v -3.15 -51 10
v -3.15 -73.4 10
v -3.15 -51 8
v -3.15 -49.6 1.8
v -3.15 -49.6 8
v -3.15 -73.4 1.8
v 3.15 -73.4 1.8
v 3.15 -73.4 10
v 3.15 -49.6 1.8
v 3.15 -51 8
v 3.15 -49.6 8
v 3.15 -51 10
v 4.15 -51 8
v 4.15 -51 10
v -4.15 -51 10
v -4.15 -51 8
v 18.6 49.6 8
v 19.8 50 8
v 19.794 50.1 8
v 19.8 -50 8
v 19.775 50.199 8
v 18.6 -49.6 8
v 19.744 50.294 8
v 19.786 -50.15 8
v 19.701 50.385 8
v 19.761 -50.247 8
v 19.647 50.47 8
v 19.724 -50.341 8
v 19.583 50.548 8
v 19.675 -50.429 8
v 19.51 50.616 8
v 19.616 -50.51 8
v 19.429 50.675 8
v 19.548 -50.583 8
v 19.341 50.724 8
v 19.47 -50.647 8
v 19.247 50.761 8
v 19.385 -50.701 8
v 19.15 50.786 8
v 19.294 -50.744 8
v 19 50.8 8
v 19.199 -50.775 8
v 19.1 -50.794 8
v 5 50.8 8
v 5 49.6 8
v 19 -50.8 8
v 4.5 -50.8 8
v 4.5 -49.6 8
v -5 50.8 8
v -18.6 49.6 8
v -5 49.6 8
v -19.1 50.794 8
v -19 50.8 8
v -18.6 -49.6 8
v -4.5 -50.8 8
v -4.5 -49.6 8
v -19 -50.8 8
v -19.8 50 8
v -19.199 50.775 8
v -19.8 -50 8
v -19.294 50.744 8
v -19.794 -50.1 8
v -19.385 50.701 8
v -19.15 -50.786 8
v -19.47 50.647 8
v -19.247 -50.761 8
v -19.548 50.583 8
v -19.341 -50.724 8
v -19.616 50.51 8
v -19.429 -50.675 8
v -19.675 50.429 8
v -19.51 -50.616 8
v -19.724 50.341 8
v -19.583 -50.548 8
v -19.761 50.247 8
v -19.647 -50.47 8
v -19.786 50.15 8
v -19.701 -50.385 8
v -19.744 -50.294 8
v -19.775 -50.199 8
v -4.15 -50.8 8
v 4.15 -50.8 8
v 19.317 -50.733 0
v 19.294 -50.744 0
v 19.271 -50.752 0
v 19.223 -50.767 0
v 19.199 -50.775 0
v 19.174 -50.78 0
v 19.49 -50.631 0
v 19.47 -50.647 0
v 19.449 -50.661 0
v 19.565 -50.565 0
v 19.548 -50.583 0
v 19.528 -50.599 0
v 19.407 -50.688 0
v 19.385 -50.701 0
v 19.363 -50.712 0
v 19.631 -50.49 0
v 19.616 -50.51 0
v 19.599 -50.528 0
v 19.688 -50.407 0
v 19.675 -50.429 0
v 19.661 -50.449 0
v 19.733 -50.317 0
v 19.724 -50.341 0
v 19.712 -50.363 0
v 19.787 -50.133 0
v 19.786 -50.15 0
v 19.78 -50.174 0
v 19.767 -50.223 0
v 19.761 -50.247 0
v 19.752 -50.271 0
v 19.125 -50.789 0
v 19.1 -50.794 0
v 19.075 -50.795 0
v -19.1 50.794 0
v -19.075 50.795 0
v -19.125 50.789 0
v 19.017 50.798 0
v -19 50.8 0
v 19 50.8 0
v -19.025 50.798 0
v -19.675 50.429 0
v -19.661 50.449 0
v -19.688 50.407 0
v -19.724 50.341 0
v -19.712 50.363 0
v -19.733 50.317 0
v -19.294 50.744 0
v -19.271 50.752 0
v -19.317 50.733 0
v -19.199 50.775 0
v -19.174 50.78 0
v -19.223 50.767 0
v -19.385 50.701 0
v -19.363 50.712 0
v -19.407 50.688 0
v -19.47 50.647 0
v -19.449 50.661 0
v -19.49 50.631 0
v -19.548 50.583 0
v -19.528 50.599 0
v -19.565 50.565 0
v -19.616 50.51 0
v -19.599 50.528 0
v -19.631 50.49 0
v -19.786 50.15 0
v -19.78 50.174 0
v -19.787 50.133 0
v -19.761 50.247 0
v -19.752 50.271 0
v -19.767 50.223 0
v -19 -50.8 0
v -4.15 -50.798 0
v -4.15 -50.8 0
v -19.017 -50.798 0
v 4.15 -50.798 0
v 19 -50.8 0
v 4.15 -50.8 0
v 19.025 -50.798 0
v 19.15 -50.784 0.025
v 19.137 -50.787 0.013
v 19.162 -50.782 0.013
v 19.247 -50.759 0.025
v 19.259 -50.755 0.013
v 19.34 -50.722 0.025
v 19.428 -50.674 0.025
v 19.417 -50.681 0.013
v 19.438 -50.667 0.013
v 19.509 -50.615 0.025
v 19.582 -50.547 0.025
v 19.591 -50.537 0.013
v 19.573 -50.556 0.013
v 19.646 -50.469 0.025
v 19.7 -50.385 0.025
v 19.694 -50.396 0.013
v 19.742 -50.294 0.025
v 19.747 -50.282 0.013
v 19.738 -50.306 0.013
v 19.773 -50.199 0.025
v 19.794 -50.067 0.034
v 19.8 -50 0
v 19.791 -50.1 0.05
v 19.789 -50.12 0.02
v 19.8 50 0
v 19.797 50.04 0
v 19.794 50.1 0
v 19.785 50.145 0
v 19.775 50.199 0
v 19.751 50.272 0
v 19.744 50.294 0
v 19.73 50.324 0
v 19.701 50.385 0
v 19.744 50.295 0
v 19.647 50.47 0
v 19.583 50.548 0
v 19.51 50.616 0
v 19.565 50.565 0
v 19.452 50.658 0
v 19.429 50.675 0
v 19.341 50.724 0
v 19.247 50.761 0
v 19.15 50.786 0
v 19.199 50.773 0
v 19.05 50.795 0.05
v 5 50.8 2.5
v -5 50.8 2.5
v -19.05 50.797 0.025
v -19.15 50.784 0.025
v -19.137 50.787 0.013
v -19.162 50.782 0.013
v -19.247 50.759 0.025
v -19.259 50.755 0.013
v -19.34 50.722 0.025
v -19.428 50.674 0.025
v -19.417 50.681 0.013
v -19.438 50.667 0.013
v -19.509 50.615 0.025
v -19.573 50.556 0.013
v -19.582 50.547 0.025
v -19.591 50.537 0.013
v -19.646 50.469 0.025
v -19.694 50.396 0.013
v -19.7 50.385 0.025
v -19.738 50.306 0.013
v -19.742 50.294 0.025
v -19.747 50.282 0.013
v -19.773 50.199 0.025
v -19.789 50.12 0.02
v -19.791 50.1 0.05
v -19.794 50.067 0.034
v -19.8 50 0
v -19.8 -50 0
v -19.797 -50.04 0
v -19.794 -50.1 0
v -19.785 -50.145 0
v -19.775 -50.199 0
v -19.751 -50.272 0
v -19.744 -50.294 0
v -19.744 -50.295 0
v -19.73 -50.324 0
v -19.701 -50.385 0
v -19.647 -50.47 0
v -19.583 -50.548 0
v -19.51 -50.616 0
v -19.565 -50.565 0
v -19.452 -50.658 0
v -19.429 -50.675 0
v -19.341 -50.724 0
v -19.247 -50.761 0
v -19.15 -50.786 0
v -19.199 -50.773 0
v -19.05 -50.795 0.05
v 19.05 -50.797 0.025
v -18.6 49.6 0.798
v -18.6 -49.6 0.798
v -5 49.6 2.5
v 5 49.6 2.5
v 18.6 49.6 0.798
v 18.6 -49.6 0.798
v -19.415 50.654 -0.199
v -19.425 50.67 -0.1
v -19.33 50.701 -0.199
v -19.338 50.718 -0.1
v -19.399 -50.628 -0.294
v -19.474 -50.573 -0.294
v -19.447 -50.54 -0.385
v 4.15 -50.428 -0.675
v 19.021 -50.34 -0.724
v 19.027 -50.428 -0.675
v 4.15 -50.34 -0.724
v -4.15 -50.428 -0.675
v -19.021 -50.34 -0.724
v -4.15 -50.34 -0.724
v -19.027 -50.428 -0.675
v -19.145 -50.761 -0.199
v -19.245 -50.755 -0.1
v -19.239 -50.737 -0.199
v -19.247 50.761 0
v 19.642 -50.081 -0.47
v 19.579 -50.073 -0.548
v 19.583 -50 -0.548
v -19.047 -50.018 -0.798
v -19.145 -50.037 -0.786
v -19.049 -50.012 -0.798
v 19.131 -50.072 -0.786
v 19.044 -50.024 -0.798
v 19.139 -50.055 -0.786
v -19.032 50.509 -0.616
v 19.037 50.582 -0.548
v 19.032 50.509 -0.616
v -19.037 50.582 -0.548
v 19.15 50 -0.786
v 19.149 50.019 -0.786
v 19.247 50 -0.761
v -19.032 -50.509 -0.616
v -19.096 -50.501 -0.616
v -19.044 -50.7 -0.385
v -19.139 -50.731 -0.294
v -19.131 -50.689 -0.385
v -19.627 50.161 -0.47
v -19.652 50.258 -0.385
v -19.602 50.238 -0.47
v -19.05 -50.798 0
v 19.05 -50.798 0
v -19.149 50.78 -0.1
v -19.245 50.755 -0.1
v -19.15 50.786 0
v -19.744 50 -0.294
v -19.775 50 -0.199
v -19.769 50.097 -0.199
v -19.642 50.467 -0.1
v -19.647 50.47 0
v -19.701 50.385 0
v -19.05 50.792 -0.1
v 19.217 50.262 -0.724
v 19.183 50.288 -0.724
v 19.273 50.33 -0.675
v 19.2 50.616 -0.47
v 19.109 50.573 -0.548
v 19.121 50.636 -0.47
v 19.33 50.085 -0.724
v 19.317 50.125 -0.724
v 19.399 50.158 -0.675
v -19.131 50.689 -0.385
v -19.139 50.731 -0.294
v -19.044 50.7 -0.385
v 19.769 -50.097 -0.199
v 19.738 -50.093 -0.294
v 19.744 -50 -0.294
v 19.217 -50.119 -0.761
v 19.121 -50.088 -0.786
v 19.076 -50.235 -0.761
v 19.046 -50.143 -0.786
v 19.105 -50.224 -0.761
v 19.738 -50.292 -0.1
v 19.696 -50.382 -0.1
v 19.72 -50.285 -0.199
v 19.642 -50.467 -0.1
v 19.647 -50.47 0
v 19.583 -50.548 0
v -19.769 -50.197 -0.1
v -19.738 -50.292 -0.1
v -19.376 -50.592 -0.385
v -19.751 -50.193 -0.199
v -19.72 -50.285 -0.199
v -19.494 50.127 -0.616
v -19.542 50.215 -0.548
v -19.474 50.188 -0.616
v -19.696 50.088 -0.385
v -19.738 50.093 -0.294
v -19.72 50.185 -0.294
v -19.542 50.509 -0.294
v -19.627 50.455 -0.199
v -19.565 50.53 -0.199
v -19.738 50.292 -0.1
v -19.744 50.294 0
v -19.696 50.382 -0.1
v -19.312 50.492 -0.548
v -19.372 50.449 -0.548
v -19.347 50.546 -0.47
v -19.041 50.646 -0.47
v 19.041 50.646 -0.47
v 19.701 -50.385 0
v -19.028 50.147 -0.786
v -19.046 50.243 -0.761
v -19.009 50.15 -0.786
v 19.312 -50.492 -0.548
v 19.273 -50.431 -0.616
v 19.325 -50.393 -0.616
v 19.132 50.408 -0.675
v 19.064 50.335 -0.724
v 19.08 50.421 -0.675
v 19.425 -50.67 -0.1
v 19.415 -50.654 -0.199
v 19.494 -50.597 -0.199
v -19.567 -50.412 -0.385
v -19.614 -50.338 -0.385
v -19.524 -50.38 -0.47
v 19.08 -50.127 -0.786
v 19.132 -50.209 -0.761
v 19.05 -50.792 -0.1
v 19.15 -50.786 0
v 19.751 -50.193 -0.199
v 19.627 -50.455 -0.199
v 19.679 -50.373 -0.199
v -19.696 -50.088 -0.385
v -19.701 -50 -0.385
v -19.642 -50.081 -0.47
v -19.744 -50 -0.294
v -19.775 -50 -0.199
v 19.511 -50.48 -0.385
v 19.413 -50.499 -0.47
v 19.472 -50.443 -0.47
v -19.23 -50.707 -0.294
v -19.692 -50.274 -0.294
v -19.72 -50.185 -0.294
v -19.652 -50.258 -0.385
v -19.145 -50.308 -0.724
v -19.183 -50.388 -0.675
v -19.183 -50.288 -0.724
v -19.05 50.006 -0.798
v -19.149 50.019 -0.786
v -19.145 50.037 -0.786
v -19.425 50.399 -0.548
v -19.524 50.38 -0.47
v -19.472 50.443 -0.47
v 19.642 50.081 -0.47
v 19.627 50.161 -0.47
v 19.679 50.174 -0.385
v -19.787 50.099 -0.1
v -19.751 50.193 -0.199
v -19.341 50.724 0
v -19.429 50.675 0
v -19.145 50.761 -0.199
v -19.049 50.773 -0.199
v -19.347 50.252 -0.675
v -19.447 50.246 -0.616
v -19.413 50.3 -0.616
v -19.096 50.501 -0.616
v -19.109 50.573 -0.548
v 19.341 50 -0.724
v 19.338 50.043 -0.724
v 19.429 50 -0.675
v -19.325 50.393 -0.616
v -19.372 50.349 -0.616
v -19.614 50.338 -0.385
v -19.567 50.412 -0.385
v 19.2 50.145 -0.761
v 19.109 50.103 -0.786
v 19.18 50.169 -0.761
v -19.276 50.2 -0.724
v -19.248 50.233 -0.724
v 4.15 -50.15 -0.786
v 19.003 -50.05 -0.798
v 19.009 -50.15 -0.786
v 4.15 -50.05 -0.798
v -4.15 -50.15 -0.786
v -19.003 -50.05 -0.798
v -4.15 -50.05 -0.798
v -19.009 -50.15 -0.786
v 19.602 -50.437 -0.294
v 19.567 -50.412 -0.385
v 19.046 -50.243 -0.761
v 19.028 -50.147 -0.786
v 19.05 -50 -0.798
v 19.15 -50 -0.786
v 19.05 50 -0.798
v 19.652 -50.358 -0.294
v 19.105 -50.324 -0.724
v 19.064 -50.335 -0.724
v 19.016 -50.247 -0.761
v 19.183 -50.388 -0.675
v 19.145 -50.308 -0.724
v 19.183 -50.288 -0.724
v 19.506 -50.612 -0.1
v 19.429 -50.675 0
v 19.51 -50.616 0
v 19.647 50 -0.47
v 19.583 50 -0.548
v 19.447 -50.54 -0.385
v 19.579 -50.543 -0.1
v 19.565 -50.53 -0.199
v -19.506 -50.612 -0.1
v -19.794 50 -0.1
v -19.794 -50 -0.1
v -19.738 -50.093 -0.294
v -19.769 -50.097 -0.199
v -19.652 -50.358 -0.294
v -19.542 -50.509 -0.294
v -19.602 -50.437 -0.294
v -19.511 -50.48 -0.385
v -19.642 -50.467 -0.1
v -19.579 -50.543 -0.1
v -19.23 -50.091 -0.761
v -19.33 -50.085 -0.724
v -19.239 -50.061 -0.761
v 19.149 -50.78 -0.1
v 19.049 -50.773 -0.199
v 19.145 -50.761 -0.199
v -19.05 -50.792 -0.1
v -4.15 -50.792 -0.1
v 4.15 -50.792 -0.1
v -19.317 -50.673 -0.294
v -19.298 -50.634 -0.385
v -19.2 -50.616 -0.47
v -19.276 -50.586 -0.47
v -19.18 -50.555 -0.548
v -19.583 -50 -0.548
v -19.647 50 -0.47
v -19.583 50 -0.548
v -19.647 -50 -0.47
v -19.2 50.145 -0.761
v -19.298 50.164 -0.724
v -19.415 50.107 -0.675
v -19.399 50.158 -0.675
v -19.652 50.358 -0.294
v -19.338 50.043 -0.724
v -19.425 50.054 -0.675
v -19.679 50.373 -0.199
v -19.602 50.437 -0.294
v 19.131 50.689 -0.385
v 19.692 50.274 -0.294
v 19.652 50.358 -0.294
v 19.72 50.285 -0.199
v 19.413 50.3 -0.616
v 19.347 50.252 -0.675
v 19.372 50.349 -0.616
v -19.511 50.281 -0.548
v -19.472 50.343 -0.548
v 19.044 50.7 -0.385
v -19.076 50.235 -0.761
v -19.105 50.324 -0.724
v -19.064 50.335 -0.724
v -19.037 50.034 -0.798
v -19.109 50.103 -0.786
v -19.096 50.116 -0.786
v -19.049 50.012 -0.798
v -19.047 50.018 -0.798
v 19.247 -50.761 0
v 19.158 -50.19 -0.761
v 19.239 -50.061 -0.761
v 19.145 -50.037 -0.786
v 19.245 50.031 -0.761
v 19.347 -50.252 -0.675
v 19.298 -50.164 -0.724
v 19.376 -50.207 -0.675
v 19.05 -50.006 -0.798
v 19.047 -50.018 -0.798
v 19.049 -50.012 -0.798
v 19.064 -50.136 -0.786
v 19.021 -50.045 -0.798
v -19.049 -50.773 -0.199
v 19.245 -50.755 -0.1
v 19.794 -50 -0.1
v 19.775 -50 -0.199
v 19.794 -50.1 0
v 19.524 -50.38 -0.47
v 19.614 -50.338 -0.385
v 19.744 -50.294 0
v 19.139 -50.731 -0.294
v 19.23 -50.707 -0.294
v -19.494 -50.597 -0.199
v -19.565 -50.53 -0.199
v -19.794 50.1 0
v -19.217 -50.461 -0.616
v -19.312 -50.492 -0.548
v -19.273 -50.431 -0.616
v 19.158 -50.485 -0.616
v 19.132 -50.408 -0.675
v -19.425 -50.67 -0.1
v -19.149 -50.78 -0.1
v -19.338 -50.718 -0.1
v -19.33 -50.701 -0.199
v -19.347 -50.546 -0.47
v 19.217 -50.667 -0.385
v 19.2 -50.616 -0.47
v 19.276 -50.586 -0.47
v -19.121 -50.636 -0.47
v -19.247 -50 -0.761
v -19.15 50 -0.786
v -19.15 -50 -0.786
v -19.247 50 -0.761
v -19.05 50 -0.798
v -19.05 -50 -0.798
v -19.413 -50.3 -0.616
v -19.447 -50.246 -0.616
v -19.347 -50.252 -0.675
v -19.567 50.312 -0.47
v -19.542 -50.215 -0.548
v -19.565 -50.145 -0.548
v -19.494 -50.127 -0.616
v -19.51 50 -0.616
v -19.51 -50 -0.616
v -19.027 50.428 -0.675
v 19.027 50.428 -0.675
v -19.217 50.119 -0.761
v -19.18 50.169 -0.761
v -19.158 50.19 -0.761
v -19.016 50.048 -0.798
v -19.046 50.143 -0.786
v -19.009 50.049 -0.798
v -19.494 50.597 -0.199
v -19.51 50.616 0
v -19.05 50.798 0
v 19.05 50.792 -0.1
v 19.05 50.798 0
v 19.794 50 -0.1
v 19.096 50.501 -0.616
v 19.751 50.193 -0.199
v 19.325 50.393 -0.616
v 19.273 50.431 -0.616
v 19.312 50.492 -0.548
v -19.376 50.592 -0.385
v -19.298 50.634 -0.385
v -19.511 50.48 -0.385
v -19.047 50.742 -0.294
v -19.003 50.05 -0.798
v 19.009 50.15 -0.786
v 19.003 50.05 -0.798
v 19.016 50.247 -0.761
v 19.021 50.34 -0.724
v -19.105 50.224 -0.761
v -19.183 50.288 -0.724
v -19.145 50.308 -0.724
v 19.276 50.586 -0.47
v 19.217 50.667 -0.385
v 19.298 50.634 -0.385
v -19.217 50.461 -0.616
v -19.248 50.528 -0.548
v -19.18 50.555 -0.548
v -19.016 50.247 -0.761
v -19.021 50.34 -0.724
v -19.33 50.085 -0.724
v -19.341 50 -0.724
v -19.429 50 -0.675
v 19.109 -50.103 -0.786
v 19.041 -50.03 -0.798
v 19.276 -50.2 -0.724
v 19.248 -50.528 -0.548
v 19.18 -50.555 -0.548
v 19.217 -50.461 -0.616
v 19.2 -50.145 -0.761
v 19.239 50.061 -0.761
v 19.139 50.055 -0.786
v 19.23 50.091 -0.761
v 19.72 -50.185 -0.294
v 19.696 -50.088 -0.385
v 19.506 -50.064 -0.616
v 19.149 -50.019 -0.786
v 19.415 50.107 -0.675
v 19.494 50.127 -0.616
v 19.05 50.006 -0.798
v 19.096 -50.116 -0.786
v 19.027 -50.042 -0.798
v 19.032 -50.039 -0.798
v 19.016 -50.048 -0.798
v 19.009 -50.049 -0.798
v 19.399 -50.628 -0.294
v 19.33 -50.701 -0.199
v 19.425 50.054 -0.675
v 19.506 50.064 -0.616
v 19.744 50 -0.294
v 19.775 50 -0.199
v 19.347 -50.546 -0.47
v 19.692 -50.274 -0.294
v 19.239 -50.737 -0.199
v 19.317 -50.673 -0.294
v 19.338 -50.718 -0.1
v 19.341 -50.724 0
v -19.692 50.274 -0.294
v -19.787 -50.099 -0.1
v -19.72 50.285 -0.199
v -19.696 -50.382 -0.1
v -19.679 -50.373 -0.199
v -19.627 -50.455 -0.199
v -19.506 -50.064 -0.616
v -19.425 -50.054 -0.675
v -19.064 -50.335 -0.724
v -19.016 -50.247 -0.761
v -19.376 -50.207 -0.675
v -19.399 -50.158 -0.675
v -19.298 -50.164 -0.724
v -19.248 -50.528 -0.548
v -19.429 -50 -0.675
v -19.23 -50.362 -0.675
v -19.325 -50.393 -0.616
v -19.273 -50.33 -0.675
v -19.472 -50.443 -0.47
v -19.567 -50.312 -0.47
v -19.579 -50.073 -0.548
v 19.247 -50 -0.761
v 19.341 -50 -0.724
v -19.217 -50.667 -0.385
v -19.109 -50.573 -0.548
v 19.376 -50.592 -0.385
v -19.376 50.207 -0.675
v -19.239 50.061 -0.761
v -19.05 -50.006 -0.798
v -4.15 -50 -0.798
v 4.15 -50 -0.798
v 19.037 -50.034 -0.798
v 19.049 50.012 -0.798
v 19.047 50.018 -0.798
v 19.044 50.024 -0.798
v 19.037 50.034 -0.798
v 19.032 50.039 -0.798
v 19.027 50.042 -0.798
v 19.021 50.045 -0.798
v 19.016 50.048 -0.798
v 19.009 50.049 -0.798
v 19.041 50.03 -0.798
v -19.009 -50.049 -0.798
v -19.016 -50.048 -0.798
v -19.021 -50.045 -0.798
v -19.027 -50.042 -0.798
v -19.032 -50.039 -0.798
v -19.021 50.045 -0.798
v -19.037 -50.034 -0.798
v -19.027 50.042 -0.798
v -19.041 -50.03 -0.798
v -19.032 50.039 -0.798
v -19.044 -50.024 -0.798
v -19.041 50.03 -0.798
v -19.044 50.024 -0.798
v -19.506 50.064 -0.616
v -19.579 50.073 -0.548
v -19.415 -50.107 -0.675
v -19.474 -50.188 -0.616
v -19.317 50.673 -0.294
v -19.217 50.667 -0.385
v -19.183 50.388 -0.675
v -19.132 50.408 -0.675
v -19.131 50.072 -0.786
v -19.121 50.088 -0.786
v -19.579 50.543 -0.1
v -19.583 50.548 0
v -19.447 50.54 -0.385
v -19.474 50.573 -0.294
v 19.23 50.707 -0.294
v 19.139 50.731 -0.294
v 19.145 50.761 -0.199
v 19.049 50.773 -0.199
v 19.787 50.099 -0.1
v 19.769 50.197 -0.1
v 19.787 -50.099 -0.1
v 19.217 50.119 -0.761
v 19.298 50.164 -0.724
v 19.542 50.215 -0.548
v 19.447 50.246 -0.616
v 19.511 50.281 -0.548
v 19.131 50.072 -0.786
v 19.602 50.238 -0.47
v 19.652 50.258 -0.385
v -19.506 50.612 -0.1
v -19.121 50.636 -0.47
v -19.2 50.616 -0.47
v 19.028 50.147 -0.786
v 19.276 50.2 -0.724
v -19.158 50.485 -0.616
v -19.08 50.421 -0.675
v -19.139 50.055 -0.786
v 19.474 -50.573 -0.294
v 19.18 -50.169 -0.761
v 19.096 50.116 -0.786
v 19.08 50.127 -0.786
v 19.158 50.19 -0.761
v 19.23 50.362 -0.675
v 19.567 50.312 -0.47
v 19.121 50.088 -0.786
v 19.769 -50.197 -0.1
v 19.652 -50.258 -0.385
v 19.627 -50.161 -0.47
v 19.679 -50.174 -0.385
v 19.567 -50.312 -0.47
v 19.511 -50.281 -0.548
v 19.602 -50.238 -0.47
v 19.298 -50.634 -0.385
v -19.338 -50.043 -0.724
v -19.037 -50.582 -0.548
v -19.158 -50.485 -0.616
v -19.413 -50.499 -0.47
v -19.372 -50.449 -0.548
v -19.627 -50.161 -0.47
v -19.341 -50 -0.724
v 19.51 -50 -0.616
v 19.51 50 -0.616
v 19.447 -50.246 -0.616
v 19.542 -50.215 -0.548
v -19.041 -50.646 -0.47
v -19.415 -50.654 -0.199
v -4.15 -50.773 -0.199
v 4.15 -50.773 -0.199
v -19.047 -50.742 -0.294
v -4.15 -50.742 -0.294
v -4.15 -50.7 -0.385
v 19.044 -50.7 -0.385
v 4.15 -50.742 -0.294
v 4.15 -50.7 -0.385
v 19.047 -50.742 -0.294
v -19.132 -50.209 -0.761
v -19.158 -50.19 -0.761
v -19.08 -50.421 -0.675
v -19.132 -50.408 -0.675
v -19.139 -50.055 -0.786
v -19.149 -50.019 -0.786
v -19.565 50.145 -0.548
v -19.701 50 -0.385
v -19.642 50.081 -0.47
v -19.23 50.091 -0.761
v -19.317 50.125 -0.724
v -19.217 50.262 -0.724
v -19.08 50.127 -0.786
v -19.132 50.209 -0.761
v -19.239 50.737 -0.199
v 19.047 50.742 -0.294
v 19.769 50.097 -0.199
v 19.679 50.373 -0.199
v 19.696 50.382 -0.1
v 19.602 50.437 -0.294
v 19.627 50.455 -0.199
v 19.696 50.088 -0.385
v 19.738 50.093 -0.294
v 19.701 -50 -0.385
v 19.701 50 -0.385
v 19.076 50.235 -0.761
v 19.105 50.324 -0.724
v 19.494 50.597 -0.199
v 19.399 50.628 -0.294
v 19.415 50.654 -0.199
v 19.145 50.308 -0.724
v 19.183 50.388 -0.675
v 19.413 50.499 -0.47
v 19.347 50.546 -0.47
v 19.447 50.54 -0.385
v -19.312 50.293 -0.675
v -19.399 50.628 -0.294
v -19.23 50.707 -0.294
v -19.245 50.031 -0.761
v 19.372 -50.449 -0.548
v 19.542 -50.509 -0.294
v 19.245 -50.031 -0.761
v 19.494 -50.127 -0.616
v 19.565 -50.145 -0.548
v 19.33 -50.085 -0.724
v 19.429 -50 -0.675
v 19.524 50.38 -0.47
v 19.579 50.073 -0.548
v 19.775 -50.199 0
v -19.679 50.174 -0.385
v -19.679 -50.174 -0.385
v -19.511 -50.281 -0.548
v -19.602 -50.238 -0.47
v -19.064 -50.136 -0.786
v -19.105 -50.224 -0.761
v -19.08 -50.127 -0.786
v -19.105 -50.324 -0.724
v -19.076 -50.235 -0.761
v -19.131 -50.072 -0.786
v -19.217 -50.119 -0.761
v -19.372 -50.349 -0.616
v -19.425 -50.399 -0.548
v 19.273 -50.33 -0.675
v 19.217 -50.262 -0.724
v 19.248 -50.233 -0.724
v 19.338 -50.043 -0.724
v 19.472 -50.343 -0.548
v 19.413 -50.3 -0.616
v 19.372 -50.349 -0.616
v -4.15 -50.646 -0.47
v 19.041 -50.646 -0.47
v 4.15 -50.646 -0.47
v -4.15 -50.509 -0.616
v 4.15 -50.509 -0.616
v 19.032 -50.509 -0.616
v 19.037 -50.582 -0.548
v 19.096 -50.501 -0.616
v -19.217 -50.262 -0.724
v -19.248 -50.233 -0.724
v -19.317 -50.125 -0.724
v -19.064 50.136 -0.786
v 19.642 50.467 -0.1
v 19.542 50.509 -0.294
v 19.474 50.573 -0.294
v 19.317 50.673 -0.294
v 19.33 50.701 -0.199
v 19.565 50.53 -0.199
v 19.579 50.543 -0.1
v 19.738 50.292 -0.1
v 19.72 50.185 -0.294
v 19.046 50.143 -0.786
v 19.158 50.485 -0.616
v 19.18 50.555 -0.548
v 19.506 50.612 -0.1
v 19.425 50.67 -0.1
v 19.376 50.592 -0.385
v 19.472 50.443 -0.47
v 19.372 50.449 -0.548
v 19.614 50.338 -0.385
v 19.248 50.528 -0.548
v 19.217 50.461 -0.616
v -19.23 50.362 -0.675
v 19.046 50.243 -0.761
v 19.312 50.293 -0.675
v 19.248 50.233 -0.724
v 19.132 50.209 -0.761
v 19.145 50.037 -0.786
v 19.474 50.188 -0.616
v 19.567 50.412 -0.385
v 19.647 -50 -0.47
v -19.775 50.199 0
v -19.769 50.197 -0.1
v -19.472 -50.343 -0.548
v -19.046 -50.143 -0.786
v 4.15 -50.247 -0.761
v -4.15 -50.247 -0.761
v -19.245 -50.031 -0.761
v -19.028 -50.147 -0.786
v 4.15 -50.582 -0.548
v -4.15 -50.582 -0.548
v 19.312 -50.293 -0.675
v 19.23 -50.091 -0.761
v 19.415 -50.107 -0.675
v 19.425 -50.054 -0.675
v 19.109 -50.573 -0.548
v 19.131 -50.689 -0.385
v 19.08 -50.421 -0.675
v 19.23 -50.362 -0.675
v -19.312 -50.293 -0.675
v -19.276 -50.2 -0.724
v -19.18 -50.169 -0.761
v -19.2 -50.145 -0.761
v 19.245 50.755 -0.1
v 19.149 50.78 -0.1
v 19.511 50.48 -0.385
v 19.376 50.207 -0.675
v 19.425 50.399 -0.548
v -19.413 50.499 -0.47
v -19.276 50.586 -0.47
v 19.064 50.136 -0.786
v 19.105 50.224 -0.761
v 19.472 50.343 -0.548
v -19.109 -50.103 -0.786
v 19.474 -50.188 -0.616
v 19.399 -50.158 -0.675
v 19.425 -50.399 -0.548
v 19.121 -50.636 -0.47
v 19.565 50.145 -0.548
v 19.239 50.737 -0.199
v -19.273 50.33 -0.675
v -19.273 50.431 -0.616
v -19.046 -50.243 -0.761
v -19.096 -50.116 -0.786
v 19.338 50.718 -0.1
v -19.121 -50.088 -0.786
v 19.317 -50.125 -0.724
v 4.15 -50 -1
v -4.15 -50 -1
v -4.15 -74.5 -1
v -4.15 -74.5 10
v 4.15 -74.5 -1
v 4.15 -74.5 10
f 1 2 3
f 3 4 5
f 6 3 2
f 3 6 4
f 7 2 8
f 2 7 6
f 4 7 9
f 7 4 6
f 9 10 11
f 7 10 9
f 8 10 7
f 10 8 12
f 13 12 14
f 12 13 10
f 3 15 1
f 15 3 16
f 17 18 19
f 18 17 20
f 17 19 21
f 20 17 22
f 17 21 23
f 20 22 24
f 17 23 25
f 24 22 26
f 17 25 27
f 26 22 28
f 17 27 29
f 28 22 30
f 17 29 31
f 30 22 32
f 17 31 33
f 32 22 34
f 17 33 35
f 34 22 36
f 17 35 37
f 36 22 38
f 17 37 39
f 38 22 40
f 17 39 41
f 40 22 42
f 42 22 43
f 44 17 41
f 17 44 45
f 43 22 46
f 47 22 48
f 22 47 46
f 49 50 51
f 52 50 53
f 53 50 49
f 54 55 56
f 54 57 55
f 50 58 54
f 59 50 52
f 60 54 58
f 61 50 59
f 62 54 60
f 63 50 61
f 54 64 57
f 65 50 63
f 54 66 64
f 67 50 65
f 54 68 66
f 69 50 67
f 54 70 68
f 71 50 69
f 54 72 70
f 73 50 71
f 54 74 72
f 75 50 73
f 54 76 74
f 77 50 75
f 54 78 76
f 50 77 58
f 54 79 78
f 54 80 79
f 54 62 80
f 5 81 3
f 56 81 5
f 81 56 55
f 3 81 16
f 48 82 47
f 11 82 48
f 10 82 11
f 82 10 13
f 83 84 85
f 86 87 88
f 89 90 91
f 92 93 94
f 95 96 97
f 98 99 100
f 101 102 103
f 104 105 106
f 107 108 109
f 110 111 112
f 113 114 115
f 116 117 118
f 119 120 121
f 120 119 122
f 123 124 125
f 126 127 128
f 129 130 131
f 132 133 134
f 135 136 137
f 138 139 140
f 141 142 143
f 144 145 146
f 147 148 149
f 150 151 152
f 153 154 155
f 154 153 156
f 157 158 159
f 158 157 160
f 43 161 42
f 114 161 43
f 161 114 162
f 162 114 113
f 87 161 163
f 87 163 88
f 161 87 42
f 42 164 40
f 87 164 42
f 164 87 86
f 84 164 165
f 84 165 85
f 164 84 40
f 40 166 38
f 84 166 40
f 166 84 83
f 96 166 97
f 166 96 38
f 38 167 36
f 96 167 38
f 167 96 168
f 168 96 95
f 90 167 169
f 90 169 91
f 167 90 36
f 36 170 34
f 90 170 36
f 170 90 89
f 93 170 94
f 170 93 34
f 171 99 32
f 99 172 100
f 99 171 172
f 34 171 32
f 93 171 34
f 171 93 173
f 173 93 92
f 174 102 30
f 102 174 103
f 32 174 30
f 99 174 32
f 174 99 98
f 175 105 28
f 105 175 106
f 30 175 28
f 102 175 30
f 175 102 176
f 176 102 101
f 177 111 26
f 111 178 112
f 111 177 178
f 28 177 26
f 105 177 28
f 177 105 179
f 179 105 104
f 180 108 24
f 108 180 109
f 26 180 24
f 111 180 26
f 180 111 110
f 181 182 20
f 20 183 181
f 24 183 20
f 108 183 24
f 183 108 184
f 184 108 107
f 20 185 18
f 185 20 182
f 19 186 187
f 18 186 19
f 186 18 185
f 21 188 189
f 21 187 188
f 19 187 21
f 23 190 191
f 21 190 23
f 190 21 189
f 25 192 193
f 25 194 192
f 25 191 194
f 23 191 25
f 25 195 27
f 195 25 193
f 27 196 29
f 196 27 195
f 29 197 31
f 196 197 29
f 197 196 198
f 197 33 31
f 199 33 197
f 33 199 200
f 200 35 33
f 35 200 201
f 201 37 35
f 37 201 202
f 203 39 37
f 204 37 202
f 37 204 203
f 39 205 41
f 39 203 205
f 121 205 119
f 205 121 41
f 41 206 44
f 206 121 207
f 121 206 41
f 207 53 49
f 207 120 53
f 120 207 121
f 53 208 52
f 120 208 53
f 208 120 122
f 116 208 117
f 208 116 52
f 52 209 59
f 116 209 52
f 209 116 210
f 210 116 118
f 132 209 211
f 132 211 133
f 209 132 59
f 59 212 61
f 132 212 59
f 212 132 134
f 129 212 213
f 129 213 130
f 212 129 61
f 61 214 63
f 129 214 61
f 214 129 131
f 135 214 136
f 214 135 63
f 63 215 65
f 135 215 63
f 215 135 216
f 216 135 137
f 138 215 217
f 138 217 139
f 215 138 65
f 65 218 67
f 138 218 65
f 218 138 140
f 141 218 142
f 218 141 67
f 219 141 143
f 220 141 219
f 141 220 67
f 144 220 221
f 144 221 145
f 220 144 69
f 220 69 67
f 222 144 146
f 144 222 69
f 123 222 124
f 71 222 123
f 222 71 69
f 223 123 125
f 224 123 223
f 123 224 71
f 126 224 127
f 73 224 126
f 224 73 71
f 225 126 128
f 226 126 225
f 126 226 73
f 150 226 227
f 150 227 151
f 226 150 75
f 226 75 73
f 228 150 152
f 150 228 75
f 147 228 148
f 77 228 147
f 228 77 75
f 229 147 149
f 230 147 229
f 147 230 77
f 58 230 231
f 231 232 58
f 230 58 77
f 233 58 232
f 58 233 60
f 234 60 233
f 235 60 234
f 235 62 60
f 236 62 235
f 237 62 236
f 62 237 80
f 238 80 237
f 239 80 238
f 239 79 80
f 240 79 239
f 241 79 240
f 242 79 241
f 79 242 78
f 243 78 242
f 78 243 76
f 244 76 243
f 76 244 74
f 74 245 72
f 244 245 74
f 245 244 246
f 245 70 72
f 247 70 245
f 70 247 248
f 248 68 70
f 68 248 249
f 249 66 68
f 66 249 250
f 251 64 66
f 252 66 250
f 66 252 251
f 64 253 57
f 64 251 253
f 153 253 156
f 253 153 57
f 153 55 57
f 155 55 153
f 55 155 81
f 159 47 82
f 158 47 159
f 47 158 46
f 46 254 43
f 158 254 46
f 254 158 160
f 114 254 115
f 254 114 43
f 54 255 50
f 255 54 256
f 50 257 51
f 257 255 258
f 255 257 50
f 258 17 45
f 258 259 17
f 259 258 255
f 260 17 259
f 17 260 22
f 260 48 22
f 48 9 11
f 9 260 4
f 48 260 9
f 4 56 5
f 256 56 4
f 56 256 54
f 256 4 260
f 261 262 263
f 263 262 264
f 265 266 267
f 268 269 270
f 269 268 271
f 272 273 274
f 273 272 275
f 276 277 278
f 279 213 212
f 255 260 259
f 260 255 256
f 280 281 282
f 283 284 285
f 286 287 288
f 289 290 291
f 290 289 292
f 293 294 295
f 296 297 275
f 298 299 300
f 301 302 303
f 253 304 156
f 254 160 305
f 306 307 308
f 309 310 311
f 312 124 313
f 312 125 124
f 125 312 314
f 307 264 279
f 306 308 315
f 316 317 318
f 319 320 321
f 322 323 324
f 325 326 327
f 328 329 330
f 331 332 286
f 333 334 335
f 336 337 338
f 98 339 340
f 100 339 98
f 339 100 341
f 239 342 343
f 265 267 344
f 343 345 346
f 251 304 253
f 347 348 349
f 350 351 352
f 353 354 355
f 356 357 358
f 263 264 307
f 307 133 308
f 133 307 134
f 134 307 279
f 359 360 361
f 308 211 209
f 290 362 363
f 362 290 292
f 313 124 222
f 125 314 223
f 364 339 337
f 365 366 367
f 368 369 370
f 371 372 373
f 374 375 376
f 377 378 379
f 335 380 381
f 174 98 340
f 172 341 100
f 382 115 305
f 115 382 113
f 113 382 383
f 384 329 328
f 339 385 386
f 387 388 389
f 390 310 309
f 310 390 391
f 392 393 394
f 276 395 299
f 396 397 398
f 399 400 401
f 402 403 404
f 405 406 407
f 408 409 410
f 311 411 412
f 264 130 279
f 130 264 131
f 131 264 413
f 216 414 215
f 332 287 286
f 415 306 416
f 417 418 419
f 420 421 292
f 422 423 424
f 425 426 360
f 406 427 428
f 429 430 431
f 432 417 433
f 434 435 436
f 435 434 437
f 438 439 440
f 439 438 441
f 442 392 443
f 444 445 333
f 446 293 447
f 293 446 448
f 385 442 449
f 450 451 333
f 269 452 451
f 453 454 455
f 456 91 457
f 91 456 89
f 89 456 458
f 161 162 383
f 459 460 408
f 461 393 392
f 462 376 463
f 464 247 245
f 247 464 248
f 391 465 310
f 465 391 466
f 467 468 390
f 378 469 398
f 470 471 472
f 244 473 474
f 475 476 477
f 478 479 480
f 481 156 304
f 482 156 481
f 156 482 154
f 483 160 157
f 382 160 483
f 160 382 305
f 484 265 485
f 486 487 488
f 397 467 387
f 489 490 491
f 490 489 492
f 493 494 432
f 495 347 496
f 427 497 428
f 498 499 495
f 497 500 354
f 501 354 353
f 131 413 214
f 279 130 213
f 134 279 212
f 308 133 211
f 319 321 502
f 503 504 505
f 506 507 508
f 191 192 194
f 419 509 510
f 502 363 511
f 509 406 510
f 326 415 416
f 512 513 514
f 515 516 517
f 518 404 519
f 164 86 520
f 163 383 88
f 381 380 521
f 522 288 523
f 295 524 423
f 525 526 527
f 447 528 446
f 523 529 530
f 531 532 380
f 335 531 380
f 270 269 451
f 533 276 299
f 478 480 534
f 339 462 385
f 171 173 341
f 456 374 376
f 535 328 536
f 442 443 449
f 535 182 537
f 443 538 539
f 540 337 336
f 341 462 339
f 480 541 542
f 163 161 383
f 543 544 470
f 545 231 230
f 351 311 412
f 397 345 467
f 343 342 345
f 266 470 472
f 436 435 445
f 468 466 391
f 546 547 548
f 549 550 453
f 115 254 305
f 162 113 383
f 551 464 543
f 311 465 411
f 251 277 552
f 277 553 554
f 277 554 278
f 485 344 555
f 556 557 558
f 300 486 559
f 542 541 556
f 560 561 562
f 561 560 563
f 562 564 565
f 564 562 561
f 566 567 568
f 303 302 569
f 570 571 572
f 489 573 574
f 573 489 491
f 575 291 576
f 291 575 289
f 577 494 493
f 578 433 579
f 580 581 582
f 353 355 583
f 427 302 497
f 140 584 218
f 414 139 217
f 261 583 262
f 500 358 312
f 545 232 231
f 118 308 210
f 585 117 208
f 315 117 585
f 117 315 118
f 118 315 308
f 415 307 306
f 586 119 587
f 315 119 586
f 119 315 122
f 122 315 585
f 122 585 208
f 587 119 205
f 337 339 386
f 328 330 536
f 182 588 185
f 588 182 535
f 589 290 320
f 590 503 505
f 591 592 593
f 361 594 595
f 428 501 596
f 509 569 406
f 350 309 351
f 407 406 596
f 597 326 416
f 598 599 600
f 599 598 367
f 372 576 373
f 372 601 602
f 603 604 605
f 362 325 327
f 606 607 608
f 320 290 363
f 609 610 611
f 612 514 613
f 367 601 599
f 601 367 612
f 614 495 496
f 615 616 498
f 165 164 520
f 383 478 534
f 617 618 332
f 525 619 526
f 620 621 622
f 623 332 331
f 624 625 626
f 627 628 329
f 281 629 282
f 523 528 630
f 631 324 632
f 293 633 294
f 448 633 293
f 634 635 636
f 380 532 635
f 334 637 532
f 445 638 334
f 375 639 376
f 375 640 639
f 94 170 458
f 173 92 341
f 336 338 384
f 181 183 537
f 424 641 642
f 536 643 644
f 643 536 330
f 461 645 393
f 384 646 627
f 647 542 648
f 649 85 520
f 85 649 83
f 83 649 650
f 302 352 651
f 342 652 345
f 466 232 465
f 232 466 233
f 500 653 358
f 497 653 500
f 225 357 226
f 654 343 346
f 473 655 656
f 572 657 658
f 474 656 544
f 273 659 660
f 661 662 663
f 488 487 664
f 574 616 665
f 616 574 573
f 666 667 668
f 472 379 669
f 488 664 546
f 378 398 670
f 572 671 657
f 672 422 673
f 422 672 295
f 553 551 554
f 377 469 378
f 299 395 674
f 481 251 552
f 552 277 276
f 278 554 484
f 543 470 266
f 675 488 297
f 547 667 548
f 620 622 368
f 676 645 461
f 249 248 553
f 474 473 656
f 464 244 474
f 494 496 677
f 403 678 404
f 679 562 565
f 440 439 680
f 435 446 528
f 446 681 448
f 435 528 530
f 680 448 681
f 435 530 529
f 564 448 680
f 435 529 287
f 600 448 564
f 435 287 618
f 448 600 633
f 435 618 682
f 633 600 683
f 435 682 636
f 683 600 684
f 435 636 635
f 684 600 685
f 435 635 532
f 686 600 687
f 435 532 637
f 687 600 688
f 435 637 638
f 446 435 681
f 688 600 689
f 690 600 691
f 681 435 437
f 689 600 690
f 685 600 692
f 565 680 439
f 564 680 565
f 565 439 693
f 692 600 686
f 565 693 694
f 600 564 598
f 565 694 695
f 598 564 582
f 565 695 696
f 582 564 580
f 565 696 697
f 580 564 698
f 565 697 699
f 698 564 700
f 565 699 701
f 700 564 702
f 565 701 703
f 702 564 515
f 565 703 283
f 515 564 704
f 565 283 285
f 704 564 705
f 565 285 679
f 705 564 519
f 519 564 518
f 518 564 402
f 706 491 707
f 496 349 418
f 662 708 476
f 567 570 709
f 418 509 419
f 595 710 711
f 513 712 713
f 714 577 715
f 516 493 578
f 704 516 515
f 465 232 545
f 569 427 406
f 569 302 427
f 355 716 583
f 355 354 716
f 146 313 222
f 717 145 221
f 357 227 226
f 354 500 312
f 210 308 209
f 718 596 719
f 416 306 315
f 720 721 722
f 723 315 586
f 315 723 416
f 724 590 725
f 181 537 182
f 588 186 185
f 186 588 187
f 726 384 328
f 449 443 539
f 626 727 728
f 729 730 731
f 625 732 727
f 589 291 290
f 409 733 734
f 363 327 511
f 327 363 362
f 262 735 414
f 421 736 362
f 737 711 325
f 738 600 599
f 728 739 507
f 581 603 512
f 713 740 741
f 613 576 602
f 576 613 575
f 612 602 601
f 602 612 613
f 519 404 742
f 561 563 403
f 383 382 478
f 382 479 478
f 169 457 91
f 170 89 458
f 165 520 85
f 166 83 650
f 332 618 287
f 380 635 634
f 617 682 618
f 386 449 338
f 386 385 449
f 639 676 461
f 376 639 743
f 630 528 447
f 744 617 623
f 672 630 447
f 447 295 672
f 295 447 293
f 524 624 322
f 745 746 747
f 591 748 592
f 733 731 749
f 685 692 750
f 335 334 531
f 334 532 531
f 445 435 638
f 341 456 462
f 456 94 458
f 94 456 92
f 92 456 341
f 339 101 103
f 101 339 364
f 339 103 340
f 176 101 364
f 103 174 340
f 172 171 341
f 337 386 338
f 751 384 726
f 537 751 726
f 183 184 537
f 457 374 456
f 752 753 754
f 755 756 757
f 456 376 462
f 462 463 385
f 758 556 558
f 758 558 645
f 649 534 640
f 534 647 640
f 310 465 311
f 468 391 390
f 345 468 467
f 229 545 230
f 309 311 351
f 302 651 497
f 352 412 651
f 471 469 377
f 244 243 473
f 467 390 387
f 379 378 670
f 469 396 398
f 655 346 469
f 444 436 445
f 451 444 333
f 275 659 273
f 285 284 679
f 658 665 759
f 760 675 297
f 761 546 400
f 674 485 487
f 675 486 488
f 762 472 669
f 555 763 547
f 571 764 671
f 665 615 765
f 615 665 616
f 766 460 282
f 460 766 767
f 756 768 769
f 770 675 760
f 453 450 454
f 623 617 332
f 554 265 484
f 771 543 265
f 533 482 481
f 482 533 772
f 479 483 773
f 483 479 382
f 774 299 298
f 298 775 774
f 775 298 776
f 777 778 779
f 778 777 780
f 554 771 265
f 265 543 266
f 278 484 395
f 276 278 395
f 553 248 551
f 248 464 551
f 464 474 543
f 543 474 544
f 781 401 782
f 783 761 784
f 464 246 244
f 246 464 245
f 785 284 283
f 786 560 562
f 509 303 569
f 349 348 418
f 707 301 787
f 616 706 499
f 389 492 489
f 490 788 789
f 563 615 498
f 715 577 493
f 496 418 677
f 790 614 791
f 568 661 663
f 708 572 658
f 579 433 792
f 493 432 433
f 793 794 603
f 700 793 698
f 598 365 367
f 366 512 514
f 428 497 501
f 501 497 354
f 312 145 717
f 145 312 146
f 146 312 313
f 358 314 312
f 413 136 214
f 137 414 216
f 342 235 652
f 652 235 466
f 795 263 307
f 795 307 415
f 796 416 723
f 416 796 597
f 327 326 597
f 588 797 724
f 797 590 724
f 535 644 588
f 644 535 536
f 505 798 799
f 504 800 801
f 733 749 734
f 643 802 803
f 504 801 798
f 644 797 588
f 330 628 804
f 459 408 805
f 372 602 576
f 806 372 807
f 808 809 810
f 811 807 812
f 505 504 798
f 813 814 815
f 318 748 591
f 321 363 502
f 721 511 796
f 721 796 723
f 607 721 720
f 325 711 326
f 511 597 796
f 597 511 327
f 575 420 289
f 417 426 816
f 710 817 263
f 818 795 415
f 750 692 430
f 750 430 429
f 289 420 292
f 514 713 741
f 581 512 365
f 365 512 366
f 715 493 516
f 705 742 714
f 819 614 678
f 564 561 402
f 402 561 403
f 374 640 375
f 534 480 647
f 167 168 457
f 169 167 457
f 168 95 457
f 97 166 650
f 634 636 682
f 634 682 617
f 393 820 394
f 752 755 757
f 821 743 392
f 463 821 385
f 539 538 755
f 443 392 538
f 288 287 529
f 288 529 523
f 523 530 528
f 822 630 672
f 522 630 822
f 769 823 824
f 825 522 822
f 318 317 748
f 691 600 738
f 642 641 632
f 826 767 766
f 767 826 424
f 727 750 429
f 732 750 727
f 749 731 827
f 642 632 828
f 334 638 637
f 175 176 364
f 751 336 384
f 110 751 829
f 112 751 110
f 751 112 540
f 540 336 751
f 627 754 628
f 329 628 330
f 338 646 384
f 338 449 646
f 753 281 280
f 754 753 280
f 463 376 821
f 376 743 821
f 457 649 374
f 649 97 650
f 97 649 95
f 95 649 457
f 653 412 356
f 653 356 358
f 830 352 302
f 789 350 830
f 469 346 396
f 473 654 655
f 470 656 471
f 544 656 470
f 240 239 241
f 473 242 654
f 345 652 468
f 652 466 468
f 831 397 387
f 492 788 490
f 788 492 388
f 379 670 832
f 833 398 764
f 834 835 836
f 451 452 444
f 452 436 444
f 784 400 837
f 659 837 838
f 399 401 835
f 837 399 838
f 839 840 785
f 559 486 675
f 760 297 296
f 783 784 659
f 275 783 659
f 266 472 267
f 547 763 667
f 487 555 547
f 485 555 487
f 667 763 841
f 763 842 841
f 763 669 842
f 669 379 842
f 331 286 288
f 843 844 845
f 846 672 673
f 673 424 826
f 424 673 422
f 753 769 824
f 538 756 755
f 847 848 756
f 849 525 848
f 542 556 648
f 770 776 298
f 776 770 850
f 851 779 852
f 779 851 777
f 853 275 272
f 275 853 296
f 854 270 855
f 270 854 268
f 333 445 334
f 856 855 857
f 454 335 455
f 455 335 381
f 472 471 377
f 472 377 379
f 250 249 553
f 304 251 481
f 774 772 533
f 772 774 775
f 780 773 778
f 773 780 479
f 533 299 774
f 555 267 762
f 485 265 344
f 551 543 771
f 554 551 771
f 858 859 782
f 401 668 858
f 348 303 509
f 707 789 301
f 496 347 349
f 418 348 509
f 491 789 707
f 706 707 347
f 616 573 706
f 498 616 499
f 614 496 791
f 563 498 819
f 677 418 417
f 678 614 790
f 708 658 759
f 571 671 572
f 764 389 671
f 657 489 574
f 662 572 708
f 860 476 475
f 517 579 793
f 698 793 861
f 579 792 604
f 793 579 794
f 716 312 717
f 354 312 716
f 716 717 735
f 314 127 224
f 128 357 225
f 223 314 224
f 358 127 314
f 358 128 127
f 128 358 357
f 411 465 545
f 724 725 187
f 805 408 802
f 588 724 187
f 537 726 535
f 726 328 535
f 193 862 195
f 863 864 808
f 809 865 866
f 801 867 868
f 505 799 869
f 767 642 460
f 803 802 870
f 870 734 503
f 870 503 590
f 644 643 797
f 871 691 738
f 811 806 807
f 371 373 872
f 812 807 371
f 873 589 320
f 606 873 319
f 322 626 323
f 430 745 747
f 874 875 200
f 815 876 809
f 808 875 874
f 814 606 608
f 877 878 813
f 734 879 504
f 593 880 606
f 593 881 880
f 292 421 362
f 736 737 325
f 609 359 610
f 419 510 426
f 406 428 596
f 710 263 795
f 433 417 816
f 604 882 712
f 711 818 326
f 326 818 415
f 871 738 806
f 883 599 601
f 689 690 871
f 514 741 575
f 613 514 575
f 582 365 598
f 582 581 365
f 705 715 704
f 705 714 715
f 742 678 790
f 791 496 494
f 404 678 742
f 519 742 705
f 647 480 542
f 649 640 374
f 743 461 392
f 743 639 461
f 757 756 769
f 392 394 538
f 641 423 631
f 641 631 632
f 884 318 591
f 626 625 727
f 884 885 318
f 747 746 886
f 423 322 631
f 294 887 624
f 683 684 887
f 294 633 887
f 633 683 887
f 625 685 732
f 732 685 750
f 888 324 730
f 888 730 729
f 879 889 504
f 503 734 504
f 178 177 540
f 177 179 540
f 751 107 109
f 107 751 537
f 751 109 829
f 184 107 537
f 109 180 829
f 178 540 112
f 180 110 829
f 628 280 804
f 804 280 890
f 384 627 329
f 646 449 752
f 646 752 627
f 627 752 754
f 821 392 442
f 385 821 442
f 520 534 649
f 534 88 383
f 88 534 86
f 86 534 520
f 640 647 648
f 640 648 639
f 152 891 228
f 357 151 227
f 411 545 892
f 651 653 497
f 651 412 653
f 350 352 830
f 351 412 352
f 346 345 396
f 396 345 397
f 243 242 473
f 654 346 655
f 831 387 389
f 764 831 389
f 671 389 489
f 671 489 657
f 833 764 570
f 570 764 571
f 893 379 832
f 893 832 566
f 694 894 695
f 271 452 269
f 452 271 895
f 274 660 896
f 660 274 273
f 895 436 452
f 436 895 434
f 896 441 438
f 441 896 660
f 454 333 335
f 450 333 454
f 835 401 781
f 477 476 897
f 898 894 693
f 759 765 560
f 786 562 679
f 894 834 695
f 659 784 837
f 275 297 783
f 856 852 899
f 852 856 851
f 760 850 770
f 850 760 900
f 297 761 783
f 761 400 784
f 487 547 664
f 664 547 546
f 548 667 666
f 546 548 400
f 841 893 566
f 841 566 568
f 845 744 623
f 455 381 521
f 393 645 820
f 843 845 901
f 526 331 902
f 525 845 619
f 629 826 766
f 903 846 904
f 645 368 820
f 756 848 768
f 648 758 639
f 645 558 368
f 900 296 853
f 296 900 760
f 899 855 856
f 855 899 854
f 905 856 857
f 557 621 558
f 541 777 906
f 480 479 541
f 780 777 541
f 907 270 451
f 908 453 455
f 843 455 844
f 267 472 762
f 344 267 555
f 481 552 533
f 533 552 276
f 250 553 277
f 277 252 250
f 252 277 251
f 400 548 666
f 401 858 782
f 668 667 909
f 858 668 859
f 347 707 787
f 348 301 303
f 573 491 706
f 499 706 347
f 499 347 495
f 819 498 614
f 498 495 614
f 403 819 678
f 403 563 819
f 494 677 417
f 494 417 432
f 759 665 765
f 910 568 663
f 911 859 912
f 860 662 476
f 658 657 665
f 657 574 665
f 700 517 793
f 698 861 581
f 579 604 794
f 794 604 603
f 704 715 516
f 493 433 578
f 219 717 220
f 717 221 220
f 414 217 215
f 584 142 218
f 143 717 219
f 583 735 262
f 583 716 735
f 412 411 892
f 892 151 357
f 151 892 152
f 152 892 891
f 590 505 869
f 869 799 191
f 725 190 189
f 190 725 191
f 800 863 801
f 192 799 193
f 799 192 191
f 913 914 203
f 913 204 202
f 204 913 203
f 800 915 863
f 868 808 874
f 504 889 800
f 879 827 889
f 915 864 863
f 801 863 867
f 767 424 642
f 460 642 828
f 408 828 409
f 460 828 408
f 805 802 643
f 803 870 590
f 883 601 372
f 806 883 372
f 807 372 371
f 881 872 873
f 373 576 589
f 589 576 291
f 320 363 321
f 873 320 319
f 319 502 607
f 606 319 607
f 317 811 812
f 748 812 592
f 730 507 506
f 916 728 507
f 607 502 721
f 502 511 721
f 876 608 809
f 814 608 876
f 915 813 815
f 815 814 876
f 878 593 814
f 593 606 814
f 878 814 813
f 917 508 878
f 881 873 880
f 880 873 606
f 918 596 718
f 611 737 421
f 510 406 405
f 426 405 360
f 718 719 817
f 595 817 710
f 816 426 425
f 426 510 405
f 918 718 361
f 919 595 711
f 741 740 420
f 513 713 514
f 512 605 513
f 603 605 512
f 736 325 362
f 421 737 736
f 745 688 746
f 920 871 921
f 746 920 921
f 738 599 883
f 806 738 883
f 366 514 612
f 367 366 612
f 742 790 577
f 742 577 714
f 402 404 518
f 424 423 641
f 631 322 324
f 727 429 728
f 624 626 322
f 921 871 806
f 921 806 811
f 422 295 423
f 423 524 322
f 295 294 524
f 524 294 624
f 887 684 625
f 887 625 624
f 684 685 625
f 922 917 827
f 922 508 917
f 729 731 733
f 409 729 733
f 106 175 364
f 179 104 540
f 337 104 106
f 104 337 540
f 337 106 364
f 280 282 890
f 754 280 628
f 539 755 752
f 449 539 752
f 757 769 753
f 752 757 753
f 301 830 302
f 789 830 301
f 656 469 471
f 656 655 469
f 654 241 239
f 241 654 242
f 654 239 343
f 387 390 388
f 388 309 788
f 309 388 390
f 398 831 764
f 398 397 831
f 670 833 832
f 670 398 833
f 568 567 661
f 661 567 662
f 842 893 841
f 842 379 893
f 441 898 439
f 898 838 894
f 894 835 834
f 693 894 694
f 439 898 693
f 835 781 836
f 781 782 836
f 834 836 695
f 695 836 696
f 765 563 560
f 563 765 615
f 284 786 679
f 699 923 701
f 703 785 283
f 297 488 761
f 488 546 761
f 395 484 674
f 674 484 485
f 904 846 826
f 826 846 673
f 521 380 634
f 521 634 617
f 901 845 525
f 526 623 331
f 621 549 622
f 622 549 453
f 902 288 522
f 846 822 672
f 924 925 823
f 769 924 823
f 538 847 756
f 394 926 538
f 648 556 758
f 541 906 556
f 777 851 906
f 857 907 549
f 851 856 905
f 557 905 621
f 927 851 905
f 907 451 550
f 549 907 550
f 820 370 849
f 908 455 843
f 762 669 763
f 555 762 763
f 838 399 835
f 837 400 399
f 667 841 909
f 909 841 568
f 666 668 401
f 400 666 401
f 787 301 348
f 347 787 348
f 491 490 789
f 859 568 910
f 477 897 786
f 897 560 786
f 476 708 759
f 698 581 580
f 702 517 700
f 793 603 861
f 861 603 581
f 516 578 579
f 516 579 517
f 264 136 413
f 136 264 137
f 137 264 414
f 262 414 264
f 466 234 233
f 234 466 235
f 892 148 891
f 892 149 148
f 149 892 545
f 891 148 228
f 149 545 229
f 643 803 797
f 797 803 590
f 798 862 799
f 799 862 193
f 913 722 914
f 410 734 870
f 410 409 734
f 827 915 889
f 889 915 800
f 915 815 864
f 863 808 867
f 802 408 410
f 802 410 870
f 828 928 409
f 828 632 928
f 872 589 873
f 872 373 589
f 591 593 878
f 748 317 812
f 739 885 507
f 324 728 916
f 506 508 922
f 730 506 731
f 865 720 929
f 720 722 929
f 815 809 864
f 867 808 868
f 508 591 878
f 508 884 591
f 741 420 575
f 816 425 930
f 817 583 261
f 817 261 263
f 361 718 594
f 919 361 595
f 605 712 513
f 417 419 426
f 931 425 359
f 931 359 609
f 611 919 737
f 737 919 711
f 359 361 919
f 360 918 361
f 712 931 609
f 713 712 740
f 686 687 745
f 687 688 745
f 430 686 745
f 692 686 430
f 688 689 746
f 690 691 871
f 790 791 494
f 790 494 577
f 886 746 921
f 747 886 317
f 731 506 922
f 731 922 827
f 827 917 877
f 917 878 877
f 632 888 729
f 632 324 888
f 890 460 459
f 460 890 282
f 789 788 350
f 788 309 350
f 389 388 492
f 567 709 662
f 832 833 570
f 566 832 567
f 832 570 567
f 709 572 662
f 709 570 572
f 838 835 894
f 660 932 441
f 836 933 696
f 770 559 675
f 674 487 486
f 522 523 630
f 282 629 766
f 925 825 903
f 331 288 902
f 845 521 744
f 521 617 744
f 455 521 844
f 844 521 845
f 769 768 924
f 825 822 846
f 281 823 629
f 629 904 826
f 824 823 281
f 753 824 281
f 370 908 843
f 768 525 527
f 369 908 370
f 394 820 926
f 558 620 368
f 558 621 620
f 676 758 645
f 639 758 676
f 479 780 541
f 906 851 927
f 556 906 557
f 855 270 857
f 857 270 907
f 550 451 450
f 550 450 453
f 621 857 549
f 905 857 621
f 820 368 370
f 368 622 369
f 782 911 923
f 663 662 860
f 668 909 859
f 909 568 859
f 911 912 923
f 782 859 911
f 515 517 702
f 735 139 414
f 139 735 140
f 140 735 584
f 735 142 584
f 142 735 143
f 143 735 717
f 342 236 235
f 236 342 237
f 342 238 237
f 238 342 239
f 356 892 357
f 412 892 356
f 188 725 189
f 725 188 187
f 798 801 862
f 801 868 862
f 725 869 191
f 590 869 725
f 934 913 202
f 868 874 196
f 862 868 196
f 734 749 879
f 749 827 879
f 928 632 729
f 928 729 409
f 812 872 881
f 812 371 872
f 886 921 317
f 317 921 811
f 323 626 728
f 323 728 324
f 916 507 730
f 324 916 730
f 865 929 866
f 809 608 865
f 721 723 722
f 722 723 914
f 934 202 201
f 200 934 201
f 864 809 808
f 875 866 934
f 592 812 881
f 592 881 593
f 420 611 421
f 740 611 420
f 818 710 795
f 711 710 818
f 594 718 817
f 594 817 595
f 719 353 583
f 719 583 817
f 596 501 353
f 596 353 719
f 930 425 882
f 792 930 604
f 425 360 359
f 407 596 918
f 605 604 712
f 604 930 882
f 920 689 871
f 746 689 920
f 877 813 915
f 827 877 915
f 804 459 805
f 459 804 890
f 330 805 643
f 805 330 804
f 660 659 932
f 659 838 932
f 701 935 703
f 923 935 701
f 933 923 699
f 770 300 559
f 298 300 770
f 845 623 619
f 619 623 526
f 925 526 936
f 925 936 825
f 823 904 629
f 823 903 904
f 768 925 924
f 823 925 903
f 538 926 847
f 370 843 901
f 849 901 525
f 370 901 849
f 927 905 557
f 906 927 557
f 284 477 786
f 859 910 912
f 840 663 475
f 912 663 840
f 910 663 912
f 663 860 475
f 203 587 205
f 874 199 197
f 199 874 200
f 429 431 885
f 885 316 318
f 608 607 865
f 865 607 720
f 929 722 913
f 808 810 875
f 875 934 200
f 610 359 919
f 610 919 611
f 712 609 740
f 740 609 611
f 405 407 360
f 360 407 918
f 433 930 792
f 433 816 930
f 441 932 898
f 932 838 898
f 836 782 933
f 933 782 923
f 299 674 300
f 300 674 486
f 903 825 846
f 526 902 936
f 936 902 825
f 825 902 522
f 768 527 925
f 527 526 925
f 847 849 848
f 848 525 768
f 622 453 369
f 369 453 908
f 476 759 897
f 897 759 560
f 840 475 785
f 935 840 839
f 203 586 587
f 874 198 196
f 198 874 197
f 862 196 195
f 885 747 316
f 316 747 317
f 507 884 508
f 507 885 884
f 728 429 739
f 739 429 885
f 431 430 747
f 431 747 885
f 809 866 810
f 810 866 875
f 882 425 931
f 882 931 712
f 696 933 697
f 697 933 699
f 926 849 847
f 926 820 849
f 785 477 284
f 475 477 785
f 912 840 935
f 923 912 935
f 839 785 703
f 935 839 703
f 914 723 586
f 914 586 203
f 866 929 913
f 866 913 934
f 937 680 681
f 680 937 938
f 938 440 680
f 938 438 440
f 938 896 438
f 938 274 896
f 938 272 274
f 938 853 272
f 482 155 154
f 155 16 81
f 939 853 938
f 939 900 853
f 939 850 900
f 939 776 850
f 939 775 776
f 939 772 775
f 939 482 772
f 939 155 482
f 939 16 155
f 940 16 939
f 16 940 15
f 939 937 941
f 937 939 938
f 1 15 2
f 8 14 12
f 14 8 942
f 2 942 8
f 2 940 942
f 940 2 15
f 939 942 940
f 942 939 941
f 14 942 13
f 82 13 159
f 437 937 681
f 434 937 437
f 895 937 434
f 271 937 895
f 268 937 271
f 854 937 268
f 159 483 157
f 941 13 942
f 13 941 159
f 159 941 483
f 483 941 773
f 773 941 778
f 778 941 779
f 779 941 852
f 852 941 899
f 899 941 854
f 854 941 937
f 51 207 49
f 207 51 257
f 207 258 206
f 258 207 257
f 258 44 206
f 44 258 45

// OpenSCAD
$fn=50;
BOX_W = 38; // Box Width
BOX_L = 100;// Box Length
BOX_H = 8.0; // Box Height
CORNER_RADIUS = 0.8; // Radius of corners
WALL = 0.8;// Wall Thickness all sides

MIC_OUTSIDE_WIDTH=8.3;
MIC_OUTSIDE_HEIGHT=11.0;
MIC_INSIDE_WIDTH=6.3;
MIC_LENGTH=24.5;

CON_OUTSIDE=5;
CON_INSIDE=4;
CON_LENGTH=3;

MIC_OFFSET_X = 0;
MIC_OFFSET_Y = -32.0;
MIC_OFFSET_Z = -0.5;

VENT_OFFSET = -4.5;
VENT_L = 19.0;
VENT_R = -19.0;

module sq_vent(x, y, vent_offset) {
    translate([x, y, BOX_H + vent_offset]) {
        rotate([90, 0, 90]) {
            linear_extrude(2.5) square([2, 2], center=true);
        }
    }
}

module vent(x, y, vent_offset) {
    translate([x, y, BOX_H + vent_offset]) {
        rotate([90, 0, 90]) {
            cylinder(h=3.0, d=2.0, center=true);
        }
    }
}

difference() {
    union() {
        linear_extrude( BOX_H )
        difference(){
            offset(r=CORNER_RADIUS) square( [BOX_W, BOX_L], center=true );
            offset(r= CORNER_RADIUS - WALL) square([BOX_W-WALL, BOX_L-WALL], center=true );
        };
        coordinates = [ [0,0],[0,BOX_L],[BOX_W,BOX_L],[BOX_W,0] ];
        translate ( [-BOX_W/2, -BOX_L/2] )
            hull()
            for (i = coordinates)
            translate(i) sphere(CORNER_RADIUS);
            
        translate([MIC_OFFSET_X, MIC_OFFSET_Y, MIC_OFFSET_Z]){
            // mic box
            translate([0,-18.0,BOX_H-3])
            rotate([90,0,0])
            linear_extrude(MIC_LENGTH)square([MIC_OUTSIDE_WIDTH,MIC_OUTSIDE_HEIGHT], center=true);
        }
    }
    translate([MIC_OFFSET_X, MIC_OFFSET_Y, MIC_OFFSET_Z]){
        // inside mic channel
        translate([0,-13.8,BOX_H-0.2]) // inside
        rotate([90,0,0])
        linear_extrude(MIC_LENGTH+3.1) square([MIC_INSIDE_WIDTH,MIC_OUTSIDE_HEIGHT], center=true); 
        
        // mic lid clearance at mic box opening
        translate([0,-17,BOX_H+1.60])
        rotate([90,0,0])
        linear_extrude(2.0) square([9,2.2], center=true);   
    }
    // cable exit
    translate([0,52.0,BOX_H-2.5])
    rotate([90,0,0])
    #linear_extrude(3.0) square([10,6], center=true);
    /*
    // gas sensor vents
    vent(VENT_L, 29.0, VENT_OFFSET);
    vent(VENT_L, 21.0, VENT_OFFSET);
    vent(VENT_L, 13.0, VENT_OFFSET);
    vent(VENT_L, 5.0, VENT_OFFSET);
    vent(VENT_L, -3.0, VENT_OFFSET);
    vent(VENT_L, -11.0, VENT_OFFSET);
    
    vent(VENT_R, 29.0, VENT_OFFSET);
    vent(VENT_R, 21.0, VENT_OFFSET);
    vent(VENT_R, 13.0, VENT_OFFSET);
    vent(VENT_R, 5.0, VENT_OFFSET);
    vent(VENT_R, -3.0, VENT_OFFSET);
    vent(VENT_R, -11.0, VENT_OFFSET);
    */
}

/*
// save for archiving

module waterdrop() {
    difference(){
        // Main drop shape
        # cylinder(r1=0, r2=0.1875, h=0.375, center=false);
        
        // To subtract from the base to make it rounded like a waterdrop
        translate([0, 0, -0.05])
        sphere(r=0.1875);
    }
}

for(i=[0:2]){
    translate([i*0.5, 0, 0]){
        waterdrop();
    }
}
*/
